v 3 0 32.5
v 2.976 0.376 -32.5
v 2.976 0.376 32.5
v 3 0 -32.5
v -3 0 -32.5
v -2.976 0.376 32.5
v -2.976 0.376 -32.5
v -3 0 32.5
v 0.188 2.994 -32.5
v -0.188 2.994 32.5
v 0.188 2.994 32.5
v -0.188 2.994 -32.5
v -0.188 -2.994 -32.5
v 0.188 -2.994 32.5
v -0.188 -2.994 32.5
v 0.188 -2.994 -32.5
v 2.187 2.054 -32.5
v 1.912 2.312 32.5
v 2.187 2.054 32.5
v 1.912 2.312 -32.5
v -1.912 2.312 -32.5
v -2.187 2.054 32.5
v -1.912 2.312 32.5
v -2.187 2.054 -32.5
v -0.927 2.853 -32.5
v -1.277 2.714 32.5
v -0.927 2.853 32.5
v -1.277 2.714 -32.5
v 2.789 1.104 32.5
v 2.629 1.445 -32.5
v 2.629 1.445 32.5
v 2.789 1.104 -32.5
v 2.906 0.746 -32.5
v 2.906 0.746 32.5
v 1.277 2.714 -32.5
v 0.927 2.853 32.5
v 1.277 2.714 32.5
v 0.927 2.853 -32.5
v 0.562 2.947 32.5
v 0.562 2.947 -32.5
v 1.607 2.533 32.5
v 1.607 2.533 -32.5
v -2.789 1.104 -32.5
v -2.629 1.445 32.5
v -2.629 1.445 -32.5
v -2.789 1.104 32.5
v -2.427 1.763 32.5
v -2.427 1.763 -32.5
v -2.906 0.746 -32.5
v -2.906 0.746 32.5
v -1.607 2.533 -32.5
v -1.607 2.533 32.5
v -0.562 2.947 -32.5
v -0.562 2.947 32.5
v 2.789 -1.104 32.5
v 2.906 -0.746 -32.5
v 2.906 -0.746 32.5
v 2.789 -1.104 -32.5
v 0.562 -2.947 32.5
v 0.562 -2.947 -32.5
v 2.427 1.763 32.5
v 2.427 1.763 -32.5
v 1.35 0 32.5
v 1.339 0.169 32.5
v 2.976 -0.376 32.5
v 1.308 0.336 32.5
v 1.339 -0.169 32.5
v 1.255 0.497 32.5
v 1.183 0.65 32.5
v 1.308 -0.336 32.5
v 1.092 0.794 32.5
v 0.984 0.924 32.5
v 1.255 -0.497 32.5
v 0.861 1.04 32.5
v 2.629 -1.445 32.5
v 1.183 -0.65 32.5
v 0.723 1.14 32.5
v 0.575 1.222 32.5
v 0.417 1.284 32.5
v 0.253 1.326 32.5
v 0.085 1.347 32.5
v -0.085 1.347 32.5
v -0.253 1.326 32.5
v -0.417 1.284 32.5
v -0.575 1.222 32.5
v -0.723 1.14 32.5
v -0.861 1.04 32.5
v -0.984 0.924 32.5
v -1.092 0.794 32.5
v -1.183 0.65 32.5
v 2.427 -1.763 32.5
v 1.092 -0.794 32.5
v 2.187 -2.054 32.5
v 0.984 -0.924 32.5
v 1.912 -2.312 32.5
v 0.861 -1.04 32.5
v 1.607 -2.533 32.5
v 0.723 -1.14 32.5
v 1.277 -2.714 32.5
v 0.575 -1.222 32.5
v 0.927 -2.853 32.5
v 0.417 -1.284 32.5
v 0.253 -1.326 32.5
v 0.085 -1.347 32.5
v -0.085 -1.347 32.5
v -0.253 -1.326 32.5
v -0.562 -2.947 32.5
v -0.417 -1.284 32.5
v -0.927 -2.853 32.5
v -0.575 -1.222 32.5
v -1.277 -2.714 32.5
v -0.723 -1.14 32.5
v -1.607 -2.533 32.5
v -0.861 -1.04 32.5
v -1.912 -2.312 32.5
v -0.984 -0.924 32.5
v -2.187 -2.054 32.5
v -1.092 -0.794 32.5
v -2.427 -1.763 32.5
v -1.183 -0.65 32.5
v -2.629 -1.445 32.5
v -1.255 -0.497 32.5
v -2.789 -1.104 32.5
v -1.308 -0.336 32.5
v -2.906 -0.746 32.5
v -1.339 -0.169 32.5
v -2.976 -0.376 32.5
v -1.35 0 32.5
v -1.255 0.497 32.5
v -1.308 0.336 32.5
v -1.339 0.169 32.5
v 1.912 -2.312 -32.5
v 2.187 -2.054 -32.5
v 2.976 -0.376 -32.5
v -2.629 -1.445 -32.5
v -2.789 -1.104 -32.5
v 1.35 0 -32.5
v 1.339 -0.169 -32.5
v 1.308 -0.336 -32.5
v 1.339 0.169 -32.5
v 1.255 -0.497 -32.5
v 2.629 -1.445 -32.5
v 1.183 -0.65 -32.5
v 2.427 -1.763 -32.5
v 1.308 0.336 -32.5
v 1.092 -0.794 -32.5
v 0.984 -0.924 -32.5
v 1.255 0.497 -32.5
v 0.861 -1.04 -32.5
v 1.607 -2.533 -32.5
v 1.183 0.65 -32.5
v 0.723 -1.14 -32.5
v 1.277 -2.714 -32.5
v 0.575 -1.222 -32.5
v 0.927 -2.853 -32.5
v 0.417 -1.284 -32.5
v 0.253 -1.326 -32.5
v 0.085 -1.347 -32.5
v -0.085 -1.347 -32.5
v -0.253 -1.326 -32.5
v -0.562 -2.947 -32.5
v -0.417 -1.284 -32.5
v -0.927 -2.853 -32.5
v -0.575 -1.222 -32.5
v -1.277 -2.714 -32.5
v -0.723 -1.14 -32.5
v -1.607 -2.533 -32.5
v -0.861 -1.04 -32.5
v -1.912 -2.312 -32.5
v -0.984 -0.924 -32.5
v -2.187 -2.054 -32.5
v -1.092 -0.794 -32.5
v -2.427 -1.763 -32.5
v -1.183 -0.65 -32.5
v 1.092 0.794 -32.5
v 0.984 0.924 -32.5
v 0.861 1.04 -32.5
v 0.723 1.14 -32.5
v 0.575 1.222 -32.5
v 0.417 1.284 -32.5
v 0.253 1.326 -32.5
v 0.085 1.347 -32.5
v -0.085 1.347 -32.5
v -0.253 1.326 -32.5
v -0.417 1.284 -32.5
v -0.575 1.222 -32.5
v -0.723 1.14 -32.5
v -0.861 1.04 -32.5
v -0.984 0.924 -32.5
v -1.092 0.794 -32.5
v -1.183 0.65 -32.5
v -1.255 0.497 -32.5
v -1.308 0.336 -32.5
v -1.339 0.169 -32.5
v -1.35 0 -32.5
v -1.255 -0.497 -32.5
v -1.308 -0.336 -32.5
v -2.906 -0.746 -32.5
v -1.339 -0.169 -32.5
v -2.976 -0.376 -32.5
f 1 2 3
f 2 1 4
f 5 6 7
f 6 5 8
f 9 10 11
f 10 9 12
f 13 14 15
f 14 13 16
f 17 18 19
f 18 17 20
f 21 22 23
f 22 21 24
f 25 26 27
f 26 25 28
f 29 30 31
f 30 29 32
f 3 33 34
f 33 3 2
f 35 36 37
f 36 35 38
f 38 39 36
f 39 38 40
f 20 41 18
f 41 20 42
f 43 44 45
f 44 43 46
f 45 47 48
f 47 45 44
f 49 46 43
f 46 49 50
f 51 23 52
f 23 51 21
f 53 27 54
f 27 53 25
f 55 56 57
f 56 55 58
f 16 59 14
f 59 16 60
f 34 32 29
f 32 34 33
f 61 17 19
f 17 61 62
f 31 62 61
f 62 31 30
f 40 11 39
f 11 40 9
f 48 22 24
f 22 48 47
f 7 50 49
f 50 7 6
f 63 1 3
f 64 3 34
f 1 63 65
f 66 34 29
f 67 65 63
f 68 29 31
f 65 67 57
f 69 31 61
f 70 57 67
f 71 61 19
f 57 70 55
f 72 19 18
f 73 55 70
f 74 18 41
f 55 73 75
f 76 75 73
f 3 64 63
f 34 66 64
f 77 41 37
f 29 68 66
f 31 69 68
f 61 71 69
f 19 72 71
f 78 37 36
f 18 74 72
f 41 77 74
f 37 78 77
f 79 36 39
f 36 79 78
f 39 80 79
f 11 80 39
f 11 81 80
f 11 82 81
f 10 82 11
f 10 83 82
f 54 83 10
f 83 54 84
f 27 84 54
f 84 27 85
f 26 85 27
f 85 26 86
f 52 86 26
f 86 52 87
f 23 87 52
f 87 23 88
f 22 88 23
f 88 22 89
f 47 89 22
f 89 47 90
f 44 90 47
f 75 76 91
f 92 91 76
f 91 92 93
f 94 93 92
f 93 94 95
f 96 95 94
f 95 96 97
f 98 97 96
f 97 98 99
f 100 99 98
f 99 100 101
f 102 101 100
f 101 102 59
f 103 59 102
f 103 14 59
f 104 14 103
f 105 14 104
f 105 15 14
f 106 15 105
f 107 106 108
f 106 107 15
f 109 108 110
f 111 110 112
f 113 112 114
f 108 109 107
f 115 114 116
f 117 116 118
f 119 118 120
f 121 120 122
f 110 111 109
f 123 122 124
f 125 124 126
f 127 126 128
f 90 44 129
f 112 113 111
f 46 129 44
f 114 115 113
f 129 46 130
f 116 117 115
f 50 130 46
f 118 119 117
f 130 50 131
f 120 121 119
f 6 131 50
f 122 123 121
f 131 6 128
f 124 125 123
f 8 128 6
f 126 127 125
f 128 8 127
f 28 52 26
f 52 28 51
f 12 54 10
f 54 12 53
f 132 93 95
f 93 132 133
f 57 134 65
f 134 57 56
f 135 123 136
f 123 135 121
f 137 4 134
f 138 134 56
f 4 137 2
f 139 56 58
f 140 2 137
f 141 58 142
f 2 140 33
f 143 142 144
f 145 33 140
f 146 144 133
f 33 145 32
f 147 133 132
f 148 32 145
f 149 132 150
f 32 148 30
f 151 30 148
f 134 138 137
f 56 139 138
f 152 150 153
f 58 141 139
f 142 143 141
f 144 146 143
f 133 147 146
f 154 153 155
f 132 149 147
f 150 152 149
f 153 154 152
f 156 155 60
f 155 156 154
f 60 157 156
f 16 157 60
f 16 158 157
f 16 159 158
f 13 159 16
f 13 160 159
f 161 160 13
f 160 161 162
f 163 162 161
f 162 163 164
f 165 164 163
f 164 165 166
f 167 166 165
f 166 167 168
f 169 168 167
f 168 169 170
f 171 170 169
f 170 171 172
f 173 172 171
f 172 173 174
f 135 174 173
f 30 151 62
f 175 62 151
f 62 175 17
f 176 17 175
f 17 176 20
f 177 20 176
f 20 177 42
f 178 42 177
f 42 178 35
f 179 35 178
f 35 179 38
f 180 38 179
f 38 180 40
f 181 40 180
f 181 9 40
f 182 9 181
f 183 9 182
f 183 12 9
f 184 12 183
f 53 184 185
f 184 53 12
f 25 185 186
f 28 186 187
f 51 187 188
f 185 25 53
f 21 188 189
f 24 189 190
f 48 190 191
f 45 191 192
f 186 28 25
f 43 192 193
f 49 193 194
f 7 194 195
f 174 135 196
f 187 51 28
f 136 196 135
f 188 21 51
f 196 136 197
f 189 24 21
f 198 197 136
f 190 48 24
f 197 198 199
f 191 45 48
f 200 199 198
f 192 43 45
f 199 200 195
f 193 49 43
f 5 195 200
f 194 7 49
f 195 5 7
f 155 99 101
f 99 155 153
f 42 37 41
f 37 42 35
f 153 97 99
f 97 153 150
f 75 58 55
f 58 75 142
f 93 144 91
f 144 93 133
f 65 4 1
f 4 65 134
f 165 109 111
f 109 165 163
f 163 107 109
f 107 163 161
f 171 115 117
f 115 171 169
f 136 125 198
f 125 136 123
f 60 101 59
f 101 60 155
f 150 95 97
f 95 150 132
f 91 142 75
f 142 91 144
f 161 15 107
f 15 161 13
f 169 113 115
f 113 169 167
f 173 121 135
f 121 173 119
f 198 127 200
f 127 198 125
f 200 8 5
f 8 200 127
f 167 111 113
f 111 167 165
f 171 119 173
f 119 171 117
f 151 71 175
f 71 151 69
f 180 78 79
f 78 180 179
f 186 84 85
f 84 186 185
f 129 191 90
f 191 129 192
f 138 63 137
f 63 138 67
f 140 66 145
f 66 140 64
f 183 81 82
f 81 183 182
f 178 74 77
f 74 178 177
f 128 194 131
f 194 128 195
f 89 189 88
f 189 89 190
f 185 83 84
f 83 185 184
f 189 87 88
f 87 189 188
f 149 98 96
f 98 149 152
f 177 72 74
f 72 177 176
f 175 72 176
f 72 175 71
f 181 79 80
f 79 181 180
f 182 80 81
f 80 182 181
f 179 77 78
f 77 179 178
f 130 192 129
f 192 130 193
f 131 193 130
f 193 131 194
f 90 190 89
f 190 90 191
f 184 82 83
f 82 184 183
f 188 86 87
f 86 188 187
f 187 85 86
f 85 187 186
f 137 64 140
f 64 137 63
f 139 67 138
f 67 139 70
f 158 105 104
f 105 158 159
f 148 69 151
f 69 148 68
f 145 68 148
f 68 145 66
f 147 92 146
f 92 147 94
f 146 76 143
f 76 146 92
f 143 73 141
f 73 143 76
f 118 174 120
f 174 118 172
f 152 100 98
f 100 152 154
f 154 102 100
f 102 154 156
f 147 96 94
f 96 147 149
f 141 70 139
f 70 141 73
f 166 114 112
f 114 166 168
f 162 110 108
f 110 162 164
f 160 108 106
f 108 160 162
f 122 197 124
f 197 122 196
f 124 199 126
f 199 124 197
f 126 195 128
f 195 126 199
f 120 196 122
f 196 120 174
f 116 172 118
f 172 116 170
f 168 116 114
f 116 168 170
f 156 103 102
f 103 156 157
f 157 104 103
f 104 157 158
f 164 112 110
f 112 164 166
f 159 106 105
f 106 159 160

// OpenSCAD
$fn = 50;


difference() {
	union() {
		translate(v = [0, 0, -32.5000000000]) {
			cylinder(h = 65, r = 3.0000000000);
		}
	}
	union() {
		translate(v = [0, 0, -100.0000000000]) {
			cylinder(h = 200, r = 1.3500000000);
		}
	}
}
